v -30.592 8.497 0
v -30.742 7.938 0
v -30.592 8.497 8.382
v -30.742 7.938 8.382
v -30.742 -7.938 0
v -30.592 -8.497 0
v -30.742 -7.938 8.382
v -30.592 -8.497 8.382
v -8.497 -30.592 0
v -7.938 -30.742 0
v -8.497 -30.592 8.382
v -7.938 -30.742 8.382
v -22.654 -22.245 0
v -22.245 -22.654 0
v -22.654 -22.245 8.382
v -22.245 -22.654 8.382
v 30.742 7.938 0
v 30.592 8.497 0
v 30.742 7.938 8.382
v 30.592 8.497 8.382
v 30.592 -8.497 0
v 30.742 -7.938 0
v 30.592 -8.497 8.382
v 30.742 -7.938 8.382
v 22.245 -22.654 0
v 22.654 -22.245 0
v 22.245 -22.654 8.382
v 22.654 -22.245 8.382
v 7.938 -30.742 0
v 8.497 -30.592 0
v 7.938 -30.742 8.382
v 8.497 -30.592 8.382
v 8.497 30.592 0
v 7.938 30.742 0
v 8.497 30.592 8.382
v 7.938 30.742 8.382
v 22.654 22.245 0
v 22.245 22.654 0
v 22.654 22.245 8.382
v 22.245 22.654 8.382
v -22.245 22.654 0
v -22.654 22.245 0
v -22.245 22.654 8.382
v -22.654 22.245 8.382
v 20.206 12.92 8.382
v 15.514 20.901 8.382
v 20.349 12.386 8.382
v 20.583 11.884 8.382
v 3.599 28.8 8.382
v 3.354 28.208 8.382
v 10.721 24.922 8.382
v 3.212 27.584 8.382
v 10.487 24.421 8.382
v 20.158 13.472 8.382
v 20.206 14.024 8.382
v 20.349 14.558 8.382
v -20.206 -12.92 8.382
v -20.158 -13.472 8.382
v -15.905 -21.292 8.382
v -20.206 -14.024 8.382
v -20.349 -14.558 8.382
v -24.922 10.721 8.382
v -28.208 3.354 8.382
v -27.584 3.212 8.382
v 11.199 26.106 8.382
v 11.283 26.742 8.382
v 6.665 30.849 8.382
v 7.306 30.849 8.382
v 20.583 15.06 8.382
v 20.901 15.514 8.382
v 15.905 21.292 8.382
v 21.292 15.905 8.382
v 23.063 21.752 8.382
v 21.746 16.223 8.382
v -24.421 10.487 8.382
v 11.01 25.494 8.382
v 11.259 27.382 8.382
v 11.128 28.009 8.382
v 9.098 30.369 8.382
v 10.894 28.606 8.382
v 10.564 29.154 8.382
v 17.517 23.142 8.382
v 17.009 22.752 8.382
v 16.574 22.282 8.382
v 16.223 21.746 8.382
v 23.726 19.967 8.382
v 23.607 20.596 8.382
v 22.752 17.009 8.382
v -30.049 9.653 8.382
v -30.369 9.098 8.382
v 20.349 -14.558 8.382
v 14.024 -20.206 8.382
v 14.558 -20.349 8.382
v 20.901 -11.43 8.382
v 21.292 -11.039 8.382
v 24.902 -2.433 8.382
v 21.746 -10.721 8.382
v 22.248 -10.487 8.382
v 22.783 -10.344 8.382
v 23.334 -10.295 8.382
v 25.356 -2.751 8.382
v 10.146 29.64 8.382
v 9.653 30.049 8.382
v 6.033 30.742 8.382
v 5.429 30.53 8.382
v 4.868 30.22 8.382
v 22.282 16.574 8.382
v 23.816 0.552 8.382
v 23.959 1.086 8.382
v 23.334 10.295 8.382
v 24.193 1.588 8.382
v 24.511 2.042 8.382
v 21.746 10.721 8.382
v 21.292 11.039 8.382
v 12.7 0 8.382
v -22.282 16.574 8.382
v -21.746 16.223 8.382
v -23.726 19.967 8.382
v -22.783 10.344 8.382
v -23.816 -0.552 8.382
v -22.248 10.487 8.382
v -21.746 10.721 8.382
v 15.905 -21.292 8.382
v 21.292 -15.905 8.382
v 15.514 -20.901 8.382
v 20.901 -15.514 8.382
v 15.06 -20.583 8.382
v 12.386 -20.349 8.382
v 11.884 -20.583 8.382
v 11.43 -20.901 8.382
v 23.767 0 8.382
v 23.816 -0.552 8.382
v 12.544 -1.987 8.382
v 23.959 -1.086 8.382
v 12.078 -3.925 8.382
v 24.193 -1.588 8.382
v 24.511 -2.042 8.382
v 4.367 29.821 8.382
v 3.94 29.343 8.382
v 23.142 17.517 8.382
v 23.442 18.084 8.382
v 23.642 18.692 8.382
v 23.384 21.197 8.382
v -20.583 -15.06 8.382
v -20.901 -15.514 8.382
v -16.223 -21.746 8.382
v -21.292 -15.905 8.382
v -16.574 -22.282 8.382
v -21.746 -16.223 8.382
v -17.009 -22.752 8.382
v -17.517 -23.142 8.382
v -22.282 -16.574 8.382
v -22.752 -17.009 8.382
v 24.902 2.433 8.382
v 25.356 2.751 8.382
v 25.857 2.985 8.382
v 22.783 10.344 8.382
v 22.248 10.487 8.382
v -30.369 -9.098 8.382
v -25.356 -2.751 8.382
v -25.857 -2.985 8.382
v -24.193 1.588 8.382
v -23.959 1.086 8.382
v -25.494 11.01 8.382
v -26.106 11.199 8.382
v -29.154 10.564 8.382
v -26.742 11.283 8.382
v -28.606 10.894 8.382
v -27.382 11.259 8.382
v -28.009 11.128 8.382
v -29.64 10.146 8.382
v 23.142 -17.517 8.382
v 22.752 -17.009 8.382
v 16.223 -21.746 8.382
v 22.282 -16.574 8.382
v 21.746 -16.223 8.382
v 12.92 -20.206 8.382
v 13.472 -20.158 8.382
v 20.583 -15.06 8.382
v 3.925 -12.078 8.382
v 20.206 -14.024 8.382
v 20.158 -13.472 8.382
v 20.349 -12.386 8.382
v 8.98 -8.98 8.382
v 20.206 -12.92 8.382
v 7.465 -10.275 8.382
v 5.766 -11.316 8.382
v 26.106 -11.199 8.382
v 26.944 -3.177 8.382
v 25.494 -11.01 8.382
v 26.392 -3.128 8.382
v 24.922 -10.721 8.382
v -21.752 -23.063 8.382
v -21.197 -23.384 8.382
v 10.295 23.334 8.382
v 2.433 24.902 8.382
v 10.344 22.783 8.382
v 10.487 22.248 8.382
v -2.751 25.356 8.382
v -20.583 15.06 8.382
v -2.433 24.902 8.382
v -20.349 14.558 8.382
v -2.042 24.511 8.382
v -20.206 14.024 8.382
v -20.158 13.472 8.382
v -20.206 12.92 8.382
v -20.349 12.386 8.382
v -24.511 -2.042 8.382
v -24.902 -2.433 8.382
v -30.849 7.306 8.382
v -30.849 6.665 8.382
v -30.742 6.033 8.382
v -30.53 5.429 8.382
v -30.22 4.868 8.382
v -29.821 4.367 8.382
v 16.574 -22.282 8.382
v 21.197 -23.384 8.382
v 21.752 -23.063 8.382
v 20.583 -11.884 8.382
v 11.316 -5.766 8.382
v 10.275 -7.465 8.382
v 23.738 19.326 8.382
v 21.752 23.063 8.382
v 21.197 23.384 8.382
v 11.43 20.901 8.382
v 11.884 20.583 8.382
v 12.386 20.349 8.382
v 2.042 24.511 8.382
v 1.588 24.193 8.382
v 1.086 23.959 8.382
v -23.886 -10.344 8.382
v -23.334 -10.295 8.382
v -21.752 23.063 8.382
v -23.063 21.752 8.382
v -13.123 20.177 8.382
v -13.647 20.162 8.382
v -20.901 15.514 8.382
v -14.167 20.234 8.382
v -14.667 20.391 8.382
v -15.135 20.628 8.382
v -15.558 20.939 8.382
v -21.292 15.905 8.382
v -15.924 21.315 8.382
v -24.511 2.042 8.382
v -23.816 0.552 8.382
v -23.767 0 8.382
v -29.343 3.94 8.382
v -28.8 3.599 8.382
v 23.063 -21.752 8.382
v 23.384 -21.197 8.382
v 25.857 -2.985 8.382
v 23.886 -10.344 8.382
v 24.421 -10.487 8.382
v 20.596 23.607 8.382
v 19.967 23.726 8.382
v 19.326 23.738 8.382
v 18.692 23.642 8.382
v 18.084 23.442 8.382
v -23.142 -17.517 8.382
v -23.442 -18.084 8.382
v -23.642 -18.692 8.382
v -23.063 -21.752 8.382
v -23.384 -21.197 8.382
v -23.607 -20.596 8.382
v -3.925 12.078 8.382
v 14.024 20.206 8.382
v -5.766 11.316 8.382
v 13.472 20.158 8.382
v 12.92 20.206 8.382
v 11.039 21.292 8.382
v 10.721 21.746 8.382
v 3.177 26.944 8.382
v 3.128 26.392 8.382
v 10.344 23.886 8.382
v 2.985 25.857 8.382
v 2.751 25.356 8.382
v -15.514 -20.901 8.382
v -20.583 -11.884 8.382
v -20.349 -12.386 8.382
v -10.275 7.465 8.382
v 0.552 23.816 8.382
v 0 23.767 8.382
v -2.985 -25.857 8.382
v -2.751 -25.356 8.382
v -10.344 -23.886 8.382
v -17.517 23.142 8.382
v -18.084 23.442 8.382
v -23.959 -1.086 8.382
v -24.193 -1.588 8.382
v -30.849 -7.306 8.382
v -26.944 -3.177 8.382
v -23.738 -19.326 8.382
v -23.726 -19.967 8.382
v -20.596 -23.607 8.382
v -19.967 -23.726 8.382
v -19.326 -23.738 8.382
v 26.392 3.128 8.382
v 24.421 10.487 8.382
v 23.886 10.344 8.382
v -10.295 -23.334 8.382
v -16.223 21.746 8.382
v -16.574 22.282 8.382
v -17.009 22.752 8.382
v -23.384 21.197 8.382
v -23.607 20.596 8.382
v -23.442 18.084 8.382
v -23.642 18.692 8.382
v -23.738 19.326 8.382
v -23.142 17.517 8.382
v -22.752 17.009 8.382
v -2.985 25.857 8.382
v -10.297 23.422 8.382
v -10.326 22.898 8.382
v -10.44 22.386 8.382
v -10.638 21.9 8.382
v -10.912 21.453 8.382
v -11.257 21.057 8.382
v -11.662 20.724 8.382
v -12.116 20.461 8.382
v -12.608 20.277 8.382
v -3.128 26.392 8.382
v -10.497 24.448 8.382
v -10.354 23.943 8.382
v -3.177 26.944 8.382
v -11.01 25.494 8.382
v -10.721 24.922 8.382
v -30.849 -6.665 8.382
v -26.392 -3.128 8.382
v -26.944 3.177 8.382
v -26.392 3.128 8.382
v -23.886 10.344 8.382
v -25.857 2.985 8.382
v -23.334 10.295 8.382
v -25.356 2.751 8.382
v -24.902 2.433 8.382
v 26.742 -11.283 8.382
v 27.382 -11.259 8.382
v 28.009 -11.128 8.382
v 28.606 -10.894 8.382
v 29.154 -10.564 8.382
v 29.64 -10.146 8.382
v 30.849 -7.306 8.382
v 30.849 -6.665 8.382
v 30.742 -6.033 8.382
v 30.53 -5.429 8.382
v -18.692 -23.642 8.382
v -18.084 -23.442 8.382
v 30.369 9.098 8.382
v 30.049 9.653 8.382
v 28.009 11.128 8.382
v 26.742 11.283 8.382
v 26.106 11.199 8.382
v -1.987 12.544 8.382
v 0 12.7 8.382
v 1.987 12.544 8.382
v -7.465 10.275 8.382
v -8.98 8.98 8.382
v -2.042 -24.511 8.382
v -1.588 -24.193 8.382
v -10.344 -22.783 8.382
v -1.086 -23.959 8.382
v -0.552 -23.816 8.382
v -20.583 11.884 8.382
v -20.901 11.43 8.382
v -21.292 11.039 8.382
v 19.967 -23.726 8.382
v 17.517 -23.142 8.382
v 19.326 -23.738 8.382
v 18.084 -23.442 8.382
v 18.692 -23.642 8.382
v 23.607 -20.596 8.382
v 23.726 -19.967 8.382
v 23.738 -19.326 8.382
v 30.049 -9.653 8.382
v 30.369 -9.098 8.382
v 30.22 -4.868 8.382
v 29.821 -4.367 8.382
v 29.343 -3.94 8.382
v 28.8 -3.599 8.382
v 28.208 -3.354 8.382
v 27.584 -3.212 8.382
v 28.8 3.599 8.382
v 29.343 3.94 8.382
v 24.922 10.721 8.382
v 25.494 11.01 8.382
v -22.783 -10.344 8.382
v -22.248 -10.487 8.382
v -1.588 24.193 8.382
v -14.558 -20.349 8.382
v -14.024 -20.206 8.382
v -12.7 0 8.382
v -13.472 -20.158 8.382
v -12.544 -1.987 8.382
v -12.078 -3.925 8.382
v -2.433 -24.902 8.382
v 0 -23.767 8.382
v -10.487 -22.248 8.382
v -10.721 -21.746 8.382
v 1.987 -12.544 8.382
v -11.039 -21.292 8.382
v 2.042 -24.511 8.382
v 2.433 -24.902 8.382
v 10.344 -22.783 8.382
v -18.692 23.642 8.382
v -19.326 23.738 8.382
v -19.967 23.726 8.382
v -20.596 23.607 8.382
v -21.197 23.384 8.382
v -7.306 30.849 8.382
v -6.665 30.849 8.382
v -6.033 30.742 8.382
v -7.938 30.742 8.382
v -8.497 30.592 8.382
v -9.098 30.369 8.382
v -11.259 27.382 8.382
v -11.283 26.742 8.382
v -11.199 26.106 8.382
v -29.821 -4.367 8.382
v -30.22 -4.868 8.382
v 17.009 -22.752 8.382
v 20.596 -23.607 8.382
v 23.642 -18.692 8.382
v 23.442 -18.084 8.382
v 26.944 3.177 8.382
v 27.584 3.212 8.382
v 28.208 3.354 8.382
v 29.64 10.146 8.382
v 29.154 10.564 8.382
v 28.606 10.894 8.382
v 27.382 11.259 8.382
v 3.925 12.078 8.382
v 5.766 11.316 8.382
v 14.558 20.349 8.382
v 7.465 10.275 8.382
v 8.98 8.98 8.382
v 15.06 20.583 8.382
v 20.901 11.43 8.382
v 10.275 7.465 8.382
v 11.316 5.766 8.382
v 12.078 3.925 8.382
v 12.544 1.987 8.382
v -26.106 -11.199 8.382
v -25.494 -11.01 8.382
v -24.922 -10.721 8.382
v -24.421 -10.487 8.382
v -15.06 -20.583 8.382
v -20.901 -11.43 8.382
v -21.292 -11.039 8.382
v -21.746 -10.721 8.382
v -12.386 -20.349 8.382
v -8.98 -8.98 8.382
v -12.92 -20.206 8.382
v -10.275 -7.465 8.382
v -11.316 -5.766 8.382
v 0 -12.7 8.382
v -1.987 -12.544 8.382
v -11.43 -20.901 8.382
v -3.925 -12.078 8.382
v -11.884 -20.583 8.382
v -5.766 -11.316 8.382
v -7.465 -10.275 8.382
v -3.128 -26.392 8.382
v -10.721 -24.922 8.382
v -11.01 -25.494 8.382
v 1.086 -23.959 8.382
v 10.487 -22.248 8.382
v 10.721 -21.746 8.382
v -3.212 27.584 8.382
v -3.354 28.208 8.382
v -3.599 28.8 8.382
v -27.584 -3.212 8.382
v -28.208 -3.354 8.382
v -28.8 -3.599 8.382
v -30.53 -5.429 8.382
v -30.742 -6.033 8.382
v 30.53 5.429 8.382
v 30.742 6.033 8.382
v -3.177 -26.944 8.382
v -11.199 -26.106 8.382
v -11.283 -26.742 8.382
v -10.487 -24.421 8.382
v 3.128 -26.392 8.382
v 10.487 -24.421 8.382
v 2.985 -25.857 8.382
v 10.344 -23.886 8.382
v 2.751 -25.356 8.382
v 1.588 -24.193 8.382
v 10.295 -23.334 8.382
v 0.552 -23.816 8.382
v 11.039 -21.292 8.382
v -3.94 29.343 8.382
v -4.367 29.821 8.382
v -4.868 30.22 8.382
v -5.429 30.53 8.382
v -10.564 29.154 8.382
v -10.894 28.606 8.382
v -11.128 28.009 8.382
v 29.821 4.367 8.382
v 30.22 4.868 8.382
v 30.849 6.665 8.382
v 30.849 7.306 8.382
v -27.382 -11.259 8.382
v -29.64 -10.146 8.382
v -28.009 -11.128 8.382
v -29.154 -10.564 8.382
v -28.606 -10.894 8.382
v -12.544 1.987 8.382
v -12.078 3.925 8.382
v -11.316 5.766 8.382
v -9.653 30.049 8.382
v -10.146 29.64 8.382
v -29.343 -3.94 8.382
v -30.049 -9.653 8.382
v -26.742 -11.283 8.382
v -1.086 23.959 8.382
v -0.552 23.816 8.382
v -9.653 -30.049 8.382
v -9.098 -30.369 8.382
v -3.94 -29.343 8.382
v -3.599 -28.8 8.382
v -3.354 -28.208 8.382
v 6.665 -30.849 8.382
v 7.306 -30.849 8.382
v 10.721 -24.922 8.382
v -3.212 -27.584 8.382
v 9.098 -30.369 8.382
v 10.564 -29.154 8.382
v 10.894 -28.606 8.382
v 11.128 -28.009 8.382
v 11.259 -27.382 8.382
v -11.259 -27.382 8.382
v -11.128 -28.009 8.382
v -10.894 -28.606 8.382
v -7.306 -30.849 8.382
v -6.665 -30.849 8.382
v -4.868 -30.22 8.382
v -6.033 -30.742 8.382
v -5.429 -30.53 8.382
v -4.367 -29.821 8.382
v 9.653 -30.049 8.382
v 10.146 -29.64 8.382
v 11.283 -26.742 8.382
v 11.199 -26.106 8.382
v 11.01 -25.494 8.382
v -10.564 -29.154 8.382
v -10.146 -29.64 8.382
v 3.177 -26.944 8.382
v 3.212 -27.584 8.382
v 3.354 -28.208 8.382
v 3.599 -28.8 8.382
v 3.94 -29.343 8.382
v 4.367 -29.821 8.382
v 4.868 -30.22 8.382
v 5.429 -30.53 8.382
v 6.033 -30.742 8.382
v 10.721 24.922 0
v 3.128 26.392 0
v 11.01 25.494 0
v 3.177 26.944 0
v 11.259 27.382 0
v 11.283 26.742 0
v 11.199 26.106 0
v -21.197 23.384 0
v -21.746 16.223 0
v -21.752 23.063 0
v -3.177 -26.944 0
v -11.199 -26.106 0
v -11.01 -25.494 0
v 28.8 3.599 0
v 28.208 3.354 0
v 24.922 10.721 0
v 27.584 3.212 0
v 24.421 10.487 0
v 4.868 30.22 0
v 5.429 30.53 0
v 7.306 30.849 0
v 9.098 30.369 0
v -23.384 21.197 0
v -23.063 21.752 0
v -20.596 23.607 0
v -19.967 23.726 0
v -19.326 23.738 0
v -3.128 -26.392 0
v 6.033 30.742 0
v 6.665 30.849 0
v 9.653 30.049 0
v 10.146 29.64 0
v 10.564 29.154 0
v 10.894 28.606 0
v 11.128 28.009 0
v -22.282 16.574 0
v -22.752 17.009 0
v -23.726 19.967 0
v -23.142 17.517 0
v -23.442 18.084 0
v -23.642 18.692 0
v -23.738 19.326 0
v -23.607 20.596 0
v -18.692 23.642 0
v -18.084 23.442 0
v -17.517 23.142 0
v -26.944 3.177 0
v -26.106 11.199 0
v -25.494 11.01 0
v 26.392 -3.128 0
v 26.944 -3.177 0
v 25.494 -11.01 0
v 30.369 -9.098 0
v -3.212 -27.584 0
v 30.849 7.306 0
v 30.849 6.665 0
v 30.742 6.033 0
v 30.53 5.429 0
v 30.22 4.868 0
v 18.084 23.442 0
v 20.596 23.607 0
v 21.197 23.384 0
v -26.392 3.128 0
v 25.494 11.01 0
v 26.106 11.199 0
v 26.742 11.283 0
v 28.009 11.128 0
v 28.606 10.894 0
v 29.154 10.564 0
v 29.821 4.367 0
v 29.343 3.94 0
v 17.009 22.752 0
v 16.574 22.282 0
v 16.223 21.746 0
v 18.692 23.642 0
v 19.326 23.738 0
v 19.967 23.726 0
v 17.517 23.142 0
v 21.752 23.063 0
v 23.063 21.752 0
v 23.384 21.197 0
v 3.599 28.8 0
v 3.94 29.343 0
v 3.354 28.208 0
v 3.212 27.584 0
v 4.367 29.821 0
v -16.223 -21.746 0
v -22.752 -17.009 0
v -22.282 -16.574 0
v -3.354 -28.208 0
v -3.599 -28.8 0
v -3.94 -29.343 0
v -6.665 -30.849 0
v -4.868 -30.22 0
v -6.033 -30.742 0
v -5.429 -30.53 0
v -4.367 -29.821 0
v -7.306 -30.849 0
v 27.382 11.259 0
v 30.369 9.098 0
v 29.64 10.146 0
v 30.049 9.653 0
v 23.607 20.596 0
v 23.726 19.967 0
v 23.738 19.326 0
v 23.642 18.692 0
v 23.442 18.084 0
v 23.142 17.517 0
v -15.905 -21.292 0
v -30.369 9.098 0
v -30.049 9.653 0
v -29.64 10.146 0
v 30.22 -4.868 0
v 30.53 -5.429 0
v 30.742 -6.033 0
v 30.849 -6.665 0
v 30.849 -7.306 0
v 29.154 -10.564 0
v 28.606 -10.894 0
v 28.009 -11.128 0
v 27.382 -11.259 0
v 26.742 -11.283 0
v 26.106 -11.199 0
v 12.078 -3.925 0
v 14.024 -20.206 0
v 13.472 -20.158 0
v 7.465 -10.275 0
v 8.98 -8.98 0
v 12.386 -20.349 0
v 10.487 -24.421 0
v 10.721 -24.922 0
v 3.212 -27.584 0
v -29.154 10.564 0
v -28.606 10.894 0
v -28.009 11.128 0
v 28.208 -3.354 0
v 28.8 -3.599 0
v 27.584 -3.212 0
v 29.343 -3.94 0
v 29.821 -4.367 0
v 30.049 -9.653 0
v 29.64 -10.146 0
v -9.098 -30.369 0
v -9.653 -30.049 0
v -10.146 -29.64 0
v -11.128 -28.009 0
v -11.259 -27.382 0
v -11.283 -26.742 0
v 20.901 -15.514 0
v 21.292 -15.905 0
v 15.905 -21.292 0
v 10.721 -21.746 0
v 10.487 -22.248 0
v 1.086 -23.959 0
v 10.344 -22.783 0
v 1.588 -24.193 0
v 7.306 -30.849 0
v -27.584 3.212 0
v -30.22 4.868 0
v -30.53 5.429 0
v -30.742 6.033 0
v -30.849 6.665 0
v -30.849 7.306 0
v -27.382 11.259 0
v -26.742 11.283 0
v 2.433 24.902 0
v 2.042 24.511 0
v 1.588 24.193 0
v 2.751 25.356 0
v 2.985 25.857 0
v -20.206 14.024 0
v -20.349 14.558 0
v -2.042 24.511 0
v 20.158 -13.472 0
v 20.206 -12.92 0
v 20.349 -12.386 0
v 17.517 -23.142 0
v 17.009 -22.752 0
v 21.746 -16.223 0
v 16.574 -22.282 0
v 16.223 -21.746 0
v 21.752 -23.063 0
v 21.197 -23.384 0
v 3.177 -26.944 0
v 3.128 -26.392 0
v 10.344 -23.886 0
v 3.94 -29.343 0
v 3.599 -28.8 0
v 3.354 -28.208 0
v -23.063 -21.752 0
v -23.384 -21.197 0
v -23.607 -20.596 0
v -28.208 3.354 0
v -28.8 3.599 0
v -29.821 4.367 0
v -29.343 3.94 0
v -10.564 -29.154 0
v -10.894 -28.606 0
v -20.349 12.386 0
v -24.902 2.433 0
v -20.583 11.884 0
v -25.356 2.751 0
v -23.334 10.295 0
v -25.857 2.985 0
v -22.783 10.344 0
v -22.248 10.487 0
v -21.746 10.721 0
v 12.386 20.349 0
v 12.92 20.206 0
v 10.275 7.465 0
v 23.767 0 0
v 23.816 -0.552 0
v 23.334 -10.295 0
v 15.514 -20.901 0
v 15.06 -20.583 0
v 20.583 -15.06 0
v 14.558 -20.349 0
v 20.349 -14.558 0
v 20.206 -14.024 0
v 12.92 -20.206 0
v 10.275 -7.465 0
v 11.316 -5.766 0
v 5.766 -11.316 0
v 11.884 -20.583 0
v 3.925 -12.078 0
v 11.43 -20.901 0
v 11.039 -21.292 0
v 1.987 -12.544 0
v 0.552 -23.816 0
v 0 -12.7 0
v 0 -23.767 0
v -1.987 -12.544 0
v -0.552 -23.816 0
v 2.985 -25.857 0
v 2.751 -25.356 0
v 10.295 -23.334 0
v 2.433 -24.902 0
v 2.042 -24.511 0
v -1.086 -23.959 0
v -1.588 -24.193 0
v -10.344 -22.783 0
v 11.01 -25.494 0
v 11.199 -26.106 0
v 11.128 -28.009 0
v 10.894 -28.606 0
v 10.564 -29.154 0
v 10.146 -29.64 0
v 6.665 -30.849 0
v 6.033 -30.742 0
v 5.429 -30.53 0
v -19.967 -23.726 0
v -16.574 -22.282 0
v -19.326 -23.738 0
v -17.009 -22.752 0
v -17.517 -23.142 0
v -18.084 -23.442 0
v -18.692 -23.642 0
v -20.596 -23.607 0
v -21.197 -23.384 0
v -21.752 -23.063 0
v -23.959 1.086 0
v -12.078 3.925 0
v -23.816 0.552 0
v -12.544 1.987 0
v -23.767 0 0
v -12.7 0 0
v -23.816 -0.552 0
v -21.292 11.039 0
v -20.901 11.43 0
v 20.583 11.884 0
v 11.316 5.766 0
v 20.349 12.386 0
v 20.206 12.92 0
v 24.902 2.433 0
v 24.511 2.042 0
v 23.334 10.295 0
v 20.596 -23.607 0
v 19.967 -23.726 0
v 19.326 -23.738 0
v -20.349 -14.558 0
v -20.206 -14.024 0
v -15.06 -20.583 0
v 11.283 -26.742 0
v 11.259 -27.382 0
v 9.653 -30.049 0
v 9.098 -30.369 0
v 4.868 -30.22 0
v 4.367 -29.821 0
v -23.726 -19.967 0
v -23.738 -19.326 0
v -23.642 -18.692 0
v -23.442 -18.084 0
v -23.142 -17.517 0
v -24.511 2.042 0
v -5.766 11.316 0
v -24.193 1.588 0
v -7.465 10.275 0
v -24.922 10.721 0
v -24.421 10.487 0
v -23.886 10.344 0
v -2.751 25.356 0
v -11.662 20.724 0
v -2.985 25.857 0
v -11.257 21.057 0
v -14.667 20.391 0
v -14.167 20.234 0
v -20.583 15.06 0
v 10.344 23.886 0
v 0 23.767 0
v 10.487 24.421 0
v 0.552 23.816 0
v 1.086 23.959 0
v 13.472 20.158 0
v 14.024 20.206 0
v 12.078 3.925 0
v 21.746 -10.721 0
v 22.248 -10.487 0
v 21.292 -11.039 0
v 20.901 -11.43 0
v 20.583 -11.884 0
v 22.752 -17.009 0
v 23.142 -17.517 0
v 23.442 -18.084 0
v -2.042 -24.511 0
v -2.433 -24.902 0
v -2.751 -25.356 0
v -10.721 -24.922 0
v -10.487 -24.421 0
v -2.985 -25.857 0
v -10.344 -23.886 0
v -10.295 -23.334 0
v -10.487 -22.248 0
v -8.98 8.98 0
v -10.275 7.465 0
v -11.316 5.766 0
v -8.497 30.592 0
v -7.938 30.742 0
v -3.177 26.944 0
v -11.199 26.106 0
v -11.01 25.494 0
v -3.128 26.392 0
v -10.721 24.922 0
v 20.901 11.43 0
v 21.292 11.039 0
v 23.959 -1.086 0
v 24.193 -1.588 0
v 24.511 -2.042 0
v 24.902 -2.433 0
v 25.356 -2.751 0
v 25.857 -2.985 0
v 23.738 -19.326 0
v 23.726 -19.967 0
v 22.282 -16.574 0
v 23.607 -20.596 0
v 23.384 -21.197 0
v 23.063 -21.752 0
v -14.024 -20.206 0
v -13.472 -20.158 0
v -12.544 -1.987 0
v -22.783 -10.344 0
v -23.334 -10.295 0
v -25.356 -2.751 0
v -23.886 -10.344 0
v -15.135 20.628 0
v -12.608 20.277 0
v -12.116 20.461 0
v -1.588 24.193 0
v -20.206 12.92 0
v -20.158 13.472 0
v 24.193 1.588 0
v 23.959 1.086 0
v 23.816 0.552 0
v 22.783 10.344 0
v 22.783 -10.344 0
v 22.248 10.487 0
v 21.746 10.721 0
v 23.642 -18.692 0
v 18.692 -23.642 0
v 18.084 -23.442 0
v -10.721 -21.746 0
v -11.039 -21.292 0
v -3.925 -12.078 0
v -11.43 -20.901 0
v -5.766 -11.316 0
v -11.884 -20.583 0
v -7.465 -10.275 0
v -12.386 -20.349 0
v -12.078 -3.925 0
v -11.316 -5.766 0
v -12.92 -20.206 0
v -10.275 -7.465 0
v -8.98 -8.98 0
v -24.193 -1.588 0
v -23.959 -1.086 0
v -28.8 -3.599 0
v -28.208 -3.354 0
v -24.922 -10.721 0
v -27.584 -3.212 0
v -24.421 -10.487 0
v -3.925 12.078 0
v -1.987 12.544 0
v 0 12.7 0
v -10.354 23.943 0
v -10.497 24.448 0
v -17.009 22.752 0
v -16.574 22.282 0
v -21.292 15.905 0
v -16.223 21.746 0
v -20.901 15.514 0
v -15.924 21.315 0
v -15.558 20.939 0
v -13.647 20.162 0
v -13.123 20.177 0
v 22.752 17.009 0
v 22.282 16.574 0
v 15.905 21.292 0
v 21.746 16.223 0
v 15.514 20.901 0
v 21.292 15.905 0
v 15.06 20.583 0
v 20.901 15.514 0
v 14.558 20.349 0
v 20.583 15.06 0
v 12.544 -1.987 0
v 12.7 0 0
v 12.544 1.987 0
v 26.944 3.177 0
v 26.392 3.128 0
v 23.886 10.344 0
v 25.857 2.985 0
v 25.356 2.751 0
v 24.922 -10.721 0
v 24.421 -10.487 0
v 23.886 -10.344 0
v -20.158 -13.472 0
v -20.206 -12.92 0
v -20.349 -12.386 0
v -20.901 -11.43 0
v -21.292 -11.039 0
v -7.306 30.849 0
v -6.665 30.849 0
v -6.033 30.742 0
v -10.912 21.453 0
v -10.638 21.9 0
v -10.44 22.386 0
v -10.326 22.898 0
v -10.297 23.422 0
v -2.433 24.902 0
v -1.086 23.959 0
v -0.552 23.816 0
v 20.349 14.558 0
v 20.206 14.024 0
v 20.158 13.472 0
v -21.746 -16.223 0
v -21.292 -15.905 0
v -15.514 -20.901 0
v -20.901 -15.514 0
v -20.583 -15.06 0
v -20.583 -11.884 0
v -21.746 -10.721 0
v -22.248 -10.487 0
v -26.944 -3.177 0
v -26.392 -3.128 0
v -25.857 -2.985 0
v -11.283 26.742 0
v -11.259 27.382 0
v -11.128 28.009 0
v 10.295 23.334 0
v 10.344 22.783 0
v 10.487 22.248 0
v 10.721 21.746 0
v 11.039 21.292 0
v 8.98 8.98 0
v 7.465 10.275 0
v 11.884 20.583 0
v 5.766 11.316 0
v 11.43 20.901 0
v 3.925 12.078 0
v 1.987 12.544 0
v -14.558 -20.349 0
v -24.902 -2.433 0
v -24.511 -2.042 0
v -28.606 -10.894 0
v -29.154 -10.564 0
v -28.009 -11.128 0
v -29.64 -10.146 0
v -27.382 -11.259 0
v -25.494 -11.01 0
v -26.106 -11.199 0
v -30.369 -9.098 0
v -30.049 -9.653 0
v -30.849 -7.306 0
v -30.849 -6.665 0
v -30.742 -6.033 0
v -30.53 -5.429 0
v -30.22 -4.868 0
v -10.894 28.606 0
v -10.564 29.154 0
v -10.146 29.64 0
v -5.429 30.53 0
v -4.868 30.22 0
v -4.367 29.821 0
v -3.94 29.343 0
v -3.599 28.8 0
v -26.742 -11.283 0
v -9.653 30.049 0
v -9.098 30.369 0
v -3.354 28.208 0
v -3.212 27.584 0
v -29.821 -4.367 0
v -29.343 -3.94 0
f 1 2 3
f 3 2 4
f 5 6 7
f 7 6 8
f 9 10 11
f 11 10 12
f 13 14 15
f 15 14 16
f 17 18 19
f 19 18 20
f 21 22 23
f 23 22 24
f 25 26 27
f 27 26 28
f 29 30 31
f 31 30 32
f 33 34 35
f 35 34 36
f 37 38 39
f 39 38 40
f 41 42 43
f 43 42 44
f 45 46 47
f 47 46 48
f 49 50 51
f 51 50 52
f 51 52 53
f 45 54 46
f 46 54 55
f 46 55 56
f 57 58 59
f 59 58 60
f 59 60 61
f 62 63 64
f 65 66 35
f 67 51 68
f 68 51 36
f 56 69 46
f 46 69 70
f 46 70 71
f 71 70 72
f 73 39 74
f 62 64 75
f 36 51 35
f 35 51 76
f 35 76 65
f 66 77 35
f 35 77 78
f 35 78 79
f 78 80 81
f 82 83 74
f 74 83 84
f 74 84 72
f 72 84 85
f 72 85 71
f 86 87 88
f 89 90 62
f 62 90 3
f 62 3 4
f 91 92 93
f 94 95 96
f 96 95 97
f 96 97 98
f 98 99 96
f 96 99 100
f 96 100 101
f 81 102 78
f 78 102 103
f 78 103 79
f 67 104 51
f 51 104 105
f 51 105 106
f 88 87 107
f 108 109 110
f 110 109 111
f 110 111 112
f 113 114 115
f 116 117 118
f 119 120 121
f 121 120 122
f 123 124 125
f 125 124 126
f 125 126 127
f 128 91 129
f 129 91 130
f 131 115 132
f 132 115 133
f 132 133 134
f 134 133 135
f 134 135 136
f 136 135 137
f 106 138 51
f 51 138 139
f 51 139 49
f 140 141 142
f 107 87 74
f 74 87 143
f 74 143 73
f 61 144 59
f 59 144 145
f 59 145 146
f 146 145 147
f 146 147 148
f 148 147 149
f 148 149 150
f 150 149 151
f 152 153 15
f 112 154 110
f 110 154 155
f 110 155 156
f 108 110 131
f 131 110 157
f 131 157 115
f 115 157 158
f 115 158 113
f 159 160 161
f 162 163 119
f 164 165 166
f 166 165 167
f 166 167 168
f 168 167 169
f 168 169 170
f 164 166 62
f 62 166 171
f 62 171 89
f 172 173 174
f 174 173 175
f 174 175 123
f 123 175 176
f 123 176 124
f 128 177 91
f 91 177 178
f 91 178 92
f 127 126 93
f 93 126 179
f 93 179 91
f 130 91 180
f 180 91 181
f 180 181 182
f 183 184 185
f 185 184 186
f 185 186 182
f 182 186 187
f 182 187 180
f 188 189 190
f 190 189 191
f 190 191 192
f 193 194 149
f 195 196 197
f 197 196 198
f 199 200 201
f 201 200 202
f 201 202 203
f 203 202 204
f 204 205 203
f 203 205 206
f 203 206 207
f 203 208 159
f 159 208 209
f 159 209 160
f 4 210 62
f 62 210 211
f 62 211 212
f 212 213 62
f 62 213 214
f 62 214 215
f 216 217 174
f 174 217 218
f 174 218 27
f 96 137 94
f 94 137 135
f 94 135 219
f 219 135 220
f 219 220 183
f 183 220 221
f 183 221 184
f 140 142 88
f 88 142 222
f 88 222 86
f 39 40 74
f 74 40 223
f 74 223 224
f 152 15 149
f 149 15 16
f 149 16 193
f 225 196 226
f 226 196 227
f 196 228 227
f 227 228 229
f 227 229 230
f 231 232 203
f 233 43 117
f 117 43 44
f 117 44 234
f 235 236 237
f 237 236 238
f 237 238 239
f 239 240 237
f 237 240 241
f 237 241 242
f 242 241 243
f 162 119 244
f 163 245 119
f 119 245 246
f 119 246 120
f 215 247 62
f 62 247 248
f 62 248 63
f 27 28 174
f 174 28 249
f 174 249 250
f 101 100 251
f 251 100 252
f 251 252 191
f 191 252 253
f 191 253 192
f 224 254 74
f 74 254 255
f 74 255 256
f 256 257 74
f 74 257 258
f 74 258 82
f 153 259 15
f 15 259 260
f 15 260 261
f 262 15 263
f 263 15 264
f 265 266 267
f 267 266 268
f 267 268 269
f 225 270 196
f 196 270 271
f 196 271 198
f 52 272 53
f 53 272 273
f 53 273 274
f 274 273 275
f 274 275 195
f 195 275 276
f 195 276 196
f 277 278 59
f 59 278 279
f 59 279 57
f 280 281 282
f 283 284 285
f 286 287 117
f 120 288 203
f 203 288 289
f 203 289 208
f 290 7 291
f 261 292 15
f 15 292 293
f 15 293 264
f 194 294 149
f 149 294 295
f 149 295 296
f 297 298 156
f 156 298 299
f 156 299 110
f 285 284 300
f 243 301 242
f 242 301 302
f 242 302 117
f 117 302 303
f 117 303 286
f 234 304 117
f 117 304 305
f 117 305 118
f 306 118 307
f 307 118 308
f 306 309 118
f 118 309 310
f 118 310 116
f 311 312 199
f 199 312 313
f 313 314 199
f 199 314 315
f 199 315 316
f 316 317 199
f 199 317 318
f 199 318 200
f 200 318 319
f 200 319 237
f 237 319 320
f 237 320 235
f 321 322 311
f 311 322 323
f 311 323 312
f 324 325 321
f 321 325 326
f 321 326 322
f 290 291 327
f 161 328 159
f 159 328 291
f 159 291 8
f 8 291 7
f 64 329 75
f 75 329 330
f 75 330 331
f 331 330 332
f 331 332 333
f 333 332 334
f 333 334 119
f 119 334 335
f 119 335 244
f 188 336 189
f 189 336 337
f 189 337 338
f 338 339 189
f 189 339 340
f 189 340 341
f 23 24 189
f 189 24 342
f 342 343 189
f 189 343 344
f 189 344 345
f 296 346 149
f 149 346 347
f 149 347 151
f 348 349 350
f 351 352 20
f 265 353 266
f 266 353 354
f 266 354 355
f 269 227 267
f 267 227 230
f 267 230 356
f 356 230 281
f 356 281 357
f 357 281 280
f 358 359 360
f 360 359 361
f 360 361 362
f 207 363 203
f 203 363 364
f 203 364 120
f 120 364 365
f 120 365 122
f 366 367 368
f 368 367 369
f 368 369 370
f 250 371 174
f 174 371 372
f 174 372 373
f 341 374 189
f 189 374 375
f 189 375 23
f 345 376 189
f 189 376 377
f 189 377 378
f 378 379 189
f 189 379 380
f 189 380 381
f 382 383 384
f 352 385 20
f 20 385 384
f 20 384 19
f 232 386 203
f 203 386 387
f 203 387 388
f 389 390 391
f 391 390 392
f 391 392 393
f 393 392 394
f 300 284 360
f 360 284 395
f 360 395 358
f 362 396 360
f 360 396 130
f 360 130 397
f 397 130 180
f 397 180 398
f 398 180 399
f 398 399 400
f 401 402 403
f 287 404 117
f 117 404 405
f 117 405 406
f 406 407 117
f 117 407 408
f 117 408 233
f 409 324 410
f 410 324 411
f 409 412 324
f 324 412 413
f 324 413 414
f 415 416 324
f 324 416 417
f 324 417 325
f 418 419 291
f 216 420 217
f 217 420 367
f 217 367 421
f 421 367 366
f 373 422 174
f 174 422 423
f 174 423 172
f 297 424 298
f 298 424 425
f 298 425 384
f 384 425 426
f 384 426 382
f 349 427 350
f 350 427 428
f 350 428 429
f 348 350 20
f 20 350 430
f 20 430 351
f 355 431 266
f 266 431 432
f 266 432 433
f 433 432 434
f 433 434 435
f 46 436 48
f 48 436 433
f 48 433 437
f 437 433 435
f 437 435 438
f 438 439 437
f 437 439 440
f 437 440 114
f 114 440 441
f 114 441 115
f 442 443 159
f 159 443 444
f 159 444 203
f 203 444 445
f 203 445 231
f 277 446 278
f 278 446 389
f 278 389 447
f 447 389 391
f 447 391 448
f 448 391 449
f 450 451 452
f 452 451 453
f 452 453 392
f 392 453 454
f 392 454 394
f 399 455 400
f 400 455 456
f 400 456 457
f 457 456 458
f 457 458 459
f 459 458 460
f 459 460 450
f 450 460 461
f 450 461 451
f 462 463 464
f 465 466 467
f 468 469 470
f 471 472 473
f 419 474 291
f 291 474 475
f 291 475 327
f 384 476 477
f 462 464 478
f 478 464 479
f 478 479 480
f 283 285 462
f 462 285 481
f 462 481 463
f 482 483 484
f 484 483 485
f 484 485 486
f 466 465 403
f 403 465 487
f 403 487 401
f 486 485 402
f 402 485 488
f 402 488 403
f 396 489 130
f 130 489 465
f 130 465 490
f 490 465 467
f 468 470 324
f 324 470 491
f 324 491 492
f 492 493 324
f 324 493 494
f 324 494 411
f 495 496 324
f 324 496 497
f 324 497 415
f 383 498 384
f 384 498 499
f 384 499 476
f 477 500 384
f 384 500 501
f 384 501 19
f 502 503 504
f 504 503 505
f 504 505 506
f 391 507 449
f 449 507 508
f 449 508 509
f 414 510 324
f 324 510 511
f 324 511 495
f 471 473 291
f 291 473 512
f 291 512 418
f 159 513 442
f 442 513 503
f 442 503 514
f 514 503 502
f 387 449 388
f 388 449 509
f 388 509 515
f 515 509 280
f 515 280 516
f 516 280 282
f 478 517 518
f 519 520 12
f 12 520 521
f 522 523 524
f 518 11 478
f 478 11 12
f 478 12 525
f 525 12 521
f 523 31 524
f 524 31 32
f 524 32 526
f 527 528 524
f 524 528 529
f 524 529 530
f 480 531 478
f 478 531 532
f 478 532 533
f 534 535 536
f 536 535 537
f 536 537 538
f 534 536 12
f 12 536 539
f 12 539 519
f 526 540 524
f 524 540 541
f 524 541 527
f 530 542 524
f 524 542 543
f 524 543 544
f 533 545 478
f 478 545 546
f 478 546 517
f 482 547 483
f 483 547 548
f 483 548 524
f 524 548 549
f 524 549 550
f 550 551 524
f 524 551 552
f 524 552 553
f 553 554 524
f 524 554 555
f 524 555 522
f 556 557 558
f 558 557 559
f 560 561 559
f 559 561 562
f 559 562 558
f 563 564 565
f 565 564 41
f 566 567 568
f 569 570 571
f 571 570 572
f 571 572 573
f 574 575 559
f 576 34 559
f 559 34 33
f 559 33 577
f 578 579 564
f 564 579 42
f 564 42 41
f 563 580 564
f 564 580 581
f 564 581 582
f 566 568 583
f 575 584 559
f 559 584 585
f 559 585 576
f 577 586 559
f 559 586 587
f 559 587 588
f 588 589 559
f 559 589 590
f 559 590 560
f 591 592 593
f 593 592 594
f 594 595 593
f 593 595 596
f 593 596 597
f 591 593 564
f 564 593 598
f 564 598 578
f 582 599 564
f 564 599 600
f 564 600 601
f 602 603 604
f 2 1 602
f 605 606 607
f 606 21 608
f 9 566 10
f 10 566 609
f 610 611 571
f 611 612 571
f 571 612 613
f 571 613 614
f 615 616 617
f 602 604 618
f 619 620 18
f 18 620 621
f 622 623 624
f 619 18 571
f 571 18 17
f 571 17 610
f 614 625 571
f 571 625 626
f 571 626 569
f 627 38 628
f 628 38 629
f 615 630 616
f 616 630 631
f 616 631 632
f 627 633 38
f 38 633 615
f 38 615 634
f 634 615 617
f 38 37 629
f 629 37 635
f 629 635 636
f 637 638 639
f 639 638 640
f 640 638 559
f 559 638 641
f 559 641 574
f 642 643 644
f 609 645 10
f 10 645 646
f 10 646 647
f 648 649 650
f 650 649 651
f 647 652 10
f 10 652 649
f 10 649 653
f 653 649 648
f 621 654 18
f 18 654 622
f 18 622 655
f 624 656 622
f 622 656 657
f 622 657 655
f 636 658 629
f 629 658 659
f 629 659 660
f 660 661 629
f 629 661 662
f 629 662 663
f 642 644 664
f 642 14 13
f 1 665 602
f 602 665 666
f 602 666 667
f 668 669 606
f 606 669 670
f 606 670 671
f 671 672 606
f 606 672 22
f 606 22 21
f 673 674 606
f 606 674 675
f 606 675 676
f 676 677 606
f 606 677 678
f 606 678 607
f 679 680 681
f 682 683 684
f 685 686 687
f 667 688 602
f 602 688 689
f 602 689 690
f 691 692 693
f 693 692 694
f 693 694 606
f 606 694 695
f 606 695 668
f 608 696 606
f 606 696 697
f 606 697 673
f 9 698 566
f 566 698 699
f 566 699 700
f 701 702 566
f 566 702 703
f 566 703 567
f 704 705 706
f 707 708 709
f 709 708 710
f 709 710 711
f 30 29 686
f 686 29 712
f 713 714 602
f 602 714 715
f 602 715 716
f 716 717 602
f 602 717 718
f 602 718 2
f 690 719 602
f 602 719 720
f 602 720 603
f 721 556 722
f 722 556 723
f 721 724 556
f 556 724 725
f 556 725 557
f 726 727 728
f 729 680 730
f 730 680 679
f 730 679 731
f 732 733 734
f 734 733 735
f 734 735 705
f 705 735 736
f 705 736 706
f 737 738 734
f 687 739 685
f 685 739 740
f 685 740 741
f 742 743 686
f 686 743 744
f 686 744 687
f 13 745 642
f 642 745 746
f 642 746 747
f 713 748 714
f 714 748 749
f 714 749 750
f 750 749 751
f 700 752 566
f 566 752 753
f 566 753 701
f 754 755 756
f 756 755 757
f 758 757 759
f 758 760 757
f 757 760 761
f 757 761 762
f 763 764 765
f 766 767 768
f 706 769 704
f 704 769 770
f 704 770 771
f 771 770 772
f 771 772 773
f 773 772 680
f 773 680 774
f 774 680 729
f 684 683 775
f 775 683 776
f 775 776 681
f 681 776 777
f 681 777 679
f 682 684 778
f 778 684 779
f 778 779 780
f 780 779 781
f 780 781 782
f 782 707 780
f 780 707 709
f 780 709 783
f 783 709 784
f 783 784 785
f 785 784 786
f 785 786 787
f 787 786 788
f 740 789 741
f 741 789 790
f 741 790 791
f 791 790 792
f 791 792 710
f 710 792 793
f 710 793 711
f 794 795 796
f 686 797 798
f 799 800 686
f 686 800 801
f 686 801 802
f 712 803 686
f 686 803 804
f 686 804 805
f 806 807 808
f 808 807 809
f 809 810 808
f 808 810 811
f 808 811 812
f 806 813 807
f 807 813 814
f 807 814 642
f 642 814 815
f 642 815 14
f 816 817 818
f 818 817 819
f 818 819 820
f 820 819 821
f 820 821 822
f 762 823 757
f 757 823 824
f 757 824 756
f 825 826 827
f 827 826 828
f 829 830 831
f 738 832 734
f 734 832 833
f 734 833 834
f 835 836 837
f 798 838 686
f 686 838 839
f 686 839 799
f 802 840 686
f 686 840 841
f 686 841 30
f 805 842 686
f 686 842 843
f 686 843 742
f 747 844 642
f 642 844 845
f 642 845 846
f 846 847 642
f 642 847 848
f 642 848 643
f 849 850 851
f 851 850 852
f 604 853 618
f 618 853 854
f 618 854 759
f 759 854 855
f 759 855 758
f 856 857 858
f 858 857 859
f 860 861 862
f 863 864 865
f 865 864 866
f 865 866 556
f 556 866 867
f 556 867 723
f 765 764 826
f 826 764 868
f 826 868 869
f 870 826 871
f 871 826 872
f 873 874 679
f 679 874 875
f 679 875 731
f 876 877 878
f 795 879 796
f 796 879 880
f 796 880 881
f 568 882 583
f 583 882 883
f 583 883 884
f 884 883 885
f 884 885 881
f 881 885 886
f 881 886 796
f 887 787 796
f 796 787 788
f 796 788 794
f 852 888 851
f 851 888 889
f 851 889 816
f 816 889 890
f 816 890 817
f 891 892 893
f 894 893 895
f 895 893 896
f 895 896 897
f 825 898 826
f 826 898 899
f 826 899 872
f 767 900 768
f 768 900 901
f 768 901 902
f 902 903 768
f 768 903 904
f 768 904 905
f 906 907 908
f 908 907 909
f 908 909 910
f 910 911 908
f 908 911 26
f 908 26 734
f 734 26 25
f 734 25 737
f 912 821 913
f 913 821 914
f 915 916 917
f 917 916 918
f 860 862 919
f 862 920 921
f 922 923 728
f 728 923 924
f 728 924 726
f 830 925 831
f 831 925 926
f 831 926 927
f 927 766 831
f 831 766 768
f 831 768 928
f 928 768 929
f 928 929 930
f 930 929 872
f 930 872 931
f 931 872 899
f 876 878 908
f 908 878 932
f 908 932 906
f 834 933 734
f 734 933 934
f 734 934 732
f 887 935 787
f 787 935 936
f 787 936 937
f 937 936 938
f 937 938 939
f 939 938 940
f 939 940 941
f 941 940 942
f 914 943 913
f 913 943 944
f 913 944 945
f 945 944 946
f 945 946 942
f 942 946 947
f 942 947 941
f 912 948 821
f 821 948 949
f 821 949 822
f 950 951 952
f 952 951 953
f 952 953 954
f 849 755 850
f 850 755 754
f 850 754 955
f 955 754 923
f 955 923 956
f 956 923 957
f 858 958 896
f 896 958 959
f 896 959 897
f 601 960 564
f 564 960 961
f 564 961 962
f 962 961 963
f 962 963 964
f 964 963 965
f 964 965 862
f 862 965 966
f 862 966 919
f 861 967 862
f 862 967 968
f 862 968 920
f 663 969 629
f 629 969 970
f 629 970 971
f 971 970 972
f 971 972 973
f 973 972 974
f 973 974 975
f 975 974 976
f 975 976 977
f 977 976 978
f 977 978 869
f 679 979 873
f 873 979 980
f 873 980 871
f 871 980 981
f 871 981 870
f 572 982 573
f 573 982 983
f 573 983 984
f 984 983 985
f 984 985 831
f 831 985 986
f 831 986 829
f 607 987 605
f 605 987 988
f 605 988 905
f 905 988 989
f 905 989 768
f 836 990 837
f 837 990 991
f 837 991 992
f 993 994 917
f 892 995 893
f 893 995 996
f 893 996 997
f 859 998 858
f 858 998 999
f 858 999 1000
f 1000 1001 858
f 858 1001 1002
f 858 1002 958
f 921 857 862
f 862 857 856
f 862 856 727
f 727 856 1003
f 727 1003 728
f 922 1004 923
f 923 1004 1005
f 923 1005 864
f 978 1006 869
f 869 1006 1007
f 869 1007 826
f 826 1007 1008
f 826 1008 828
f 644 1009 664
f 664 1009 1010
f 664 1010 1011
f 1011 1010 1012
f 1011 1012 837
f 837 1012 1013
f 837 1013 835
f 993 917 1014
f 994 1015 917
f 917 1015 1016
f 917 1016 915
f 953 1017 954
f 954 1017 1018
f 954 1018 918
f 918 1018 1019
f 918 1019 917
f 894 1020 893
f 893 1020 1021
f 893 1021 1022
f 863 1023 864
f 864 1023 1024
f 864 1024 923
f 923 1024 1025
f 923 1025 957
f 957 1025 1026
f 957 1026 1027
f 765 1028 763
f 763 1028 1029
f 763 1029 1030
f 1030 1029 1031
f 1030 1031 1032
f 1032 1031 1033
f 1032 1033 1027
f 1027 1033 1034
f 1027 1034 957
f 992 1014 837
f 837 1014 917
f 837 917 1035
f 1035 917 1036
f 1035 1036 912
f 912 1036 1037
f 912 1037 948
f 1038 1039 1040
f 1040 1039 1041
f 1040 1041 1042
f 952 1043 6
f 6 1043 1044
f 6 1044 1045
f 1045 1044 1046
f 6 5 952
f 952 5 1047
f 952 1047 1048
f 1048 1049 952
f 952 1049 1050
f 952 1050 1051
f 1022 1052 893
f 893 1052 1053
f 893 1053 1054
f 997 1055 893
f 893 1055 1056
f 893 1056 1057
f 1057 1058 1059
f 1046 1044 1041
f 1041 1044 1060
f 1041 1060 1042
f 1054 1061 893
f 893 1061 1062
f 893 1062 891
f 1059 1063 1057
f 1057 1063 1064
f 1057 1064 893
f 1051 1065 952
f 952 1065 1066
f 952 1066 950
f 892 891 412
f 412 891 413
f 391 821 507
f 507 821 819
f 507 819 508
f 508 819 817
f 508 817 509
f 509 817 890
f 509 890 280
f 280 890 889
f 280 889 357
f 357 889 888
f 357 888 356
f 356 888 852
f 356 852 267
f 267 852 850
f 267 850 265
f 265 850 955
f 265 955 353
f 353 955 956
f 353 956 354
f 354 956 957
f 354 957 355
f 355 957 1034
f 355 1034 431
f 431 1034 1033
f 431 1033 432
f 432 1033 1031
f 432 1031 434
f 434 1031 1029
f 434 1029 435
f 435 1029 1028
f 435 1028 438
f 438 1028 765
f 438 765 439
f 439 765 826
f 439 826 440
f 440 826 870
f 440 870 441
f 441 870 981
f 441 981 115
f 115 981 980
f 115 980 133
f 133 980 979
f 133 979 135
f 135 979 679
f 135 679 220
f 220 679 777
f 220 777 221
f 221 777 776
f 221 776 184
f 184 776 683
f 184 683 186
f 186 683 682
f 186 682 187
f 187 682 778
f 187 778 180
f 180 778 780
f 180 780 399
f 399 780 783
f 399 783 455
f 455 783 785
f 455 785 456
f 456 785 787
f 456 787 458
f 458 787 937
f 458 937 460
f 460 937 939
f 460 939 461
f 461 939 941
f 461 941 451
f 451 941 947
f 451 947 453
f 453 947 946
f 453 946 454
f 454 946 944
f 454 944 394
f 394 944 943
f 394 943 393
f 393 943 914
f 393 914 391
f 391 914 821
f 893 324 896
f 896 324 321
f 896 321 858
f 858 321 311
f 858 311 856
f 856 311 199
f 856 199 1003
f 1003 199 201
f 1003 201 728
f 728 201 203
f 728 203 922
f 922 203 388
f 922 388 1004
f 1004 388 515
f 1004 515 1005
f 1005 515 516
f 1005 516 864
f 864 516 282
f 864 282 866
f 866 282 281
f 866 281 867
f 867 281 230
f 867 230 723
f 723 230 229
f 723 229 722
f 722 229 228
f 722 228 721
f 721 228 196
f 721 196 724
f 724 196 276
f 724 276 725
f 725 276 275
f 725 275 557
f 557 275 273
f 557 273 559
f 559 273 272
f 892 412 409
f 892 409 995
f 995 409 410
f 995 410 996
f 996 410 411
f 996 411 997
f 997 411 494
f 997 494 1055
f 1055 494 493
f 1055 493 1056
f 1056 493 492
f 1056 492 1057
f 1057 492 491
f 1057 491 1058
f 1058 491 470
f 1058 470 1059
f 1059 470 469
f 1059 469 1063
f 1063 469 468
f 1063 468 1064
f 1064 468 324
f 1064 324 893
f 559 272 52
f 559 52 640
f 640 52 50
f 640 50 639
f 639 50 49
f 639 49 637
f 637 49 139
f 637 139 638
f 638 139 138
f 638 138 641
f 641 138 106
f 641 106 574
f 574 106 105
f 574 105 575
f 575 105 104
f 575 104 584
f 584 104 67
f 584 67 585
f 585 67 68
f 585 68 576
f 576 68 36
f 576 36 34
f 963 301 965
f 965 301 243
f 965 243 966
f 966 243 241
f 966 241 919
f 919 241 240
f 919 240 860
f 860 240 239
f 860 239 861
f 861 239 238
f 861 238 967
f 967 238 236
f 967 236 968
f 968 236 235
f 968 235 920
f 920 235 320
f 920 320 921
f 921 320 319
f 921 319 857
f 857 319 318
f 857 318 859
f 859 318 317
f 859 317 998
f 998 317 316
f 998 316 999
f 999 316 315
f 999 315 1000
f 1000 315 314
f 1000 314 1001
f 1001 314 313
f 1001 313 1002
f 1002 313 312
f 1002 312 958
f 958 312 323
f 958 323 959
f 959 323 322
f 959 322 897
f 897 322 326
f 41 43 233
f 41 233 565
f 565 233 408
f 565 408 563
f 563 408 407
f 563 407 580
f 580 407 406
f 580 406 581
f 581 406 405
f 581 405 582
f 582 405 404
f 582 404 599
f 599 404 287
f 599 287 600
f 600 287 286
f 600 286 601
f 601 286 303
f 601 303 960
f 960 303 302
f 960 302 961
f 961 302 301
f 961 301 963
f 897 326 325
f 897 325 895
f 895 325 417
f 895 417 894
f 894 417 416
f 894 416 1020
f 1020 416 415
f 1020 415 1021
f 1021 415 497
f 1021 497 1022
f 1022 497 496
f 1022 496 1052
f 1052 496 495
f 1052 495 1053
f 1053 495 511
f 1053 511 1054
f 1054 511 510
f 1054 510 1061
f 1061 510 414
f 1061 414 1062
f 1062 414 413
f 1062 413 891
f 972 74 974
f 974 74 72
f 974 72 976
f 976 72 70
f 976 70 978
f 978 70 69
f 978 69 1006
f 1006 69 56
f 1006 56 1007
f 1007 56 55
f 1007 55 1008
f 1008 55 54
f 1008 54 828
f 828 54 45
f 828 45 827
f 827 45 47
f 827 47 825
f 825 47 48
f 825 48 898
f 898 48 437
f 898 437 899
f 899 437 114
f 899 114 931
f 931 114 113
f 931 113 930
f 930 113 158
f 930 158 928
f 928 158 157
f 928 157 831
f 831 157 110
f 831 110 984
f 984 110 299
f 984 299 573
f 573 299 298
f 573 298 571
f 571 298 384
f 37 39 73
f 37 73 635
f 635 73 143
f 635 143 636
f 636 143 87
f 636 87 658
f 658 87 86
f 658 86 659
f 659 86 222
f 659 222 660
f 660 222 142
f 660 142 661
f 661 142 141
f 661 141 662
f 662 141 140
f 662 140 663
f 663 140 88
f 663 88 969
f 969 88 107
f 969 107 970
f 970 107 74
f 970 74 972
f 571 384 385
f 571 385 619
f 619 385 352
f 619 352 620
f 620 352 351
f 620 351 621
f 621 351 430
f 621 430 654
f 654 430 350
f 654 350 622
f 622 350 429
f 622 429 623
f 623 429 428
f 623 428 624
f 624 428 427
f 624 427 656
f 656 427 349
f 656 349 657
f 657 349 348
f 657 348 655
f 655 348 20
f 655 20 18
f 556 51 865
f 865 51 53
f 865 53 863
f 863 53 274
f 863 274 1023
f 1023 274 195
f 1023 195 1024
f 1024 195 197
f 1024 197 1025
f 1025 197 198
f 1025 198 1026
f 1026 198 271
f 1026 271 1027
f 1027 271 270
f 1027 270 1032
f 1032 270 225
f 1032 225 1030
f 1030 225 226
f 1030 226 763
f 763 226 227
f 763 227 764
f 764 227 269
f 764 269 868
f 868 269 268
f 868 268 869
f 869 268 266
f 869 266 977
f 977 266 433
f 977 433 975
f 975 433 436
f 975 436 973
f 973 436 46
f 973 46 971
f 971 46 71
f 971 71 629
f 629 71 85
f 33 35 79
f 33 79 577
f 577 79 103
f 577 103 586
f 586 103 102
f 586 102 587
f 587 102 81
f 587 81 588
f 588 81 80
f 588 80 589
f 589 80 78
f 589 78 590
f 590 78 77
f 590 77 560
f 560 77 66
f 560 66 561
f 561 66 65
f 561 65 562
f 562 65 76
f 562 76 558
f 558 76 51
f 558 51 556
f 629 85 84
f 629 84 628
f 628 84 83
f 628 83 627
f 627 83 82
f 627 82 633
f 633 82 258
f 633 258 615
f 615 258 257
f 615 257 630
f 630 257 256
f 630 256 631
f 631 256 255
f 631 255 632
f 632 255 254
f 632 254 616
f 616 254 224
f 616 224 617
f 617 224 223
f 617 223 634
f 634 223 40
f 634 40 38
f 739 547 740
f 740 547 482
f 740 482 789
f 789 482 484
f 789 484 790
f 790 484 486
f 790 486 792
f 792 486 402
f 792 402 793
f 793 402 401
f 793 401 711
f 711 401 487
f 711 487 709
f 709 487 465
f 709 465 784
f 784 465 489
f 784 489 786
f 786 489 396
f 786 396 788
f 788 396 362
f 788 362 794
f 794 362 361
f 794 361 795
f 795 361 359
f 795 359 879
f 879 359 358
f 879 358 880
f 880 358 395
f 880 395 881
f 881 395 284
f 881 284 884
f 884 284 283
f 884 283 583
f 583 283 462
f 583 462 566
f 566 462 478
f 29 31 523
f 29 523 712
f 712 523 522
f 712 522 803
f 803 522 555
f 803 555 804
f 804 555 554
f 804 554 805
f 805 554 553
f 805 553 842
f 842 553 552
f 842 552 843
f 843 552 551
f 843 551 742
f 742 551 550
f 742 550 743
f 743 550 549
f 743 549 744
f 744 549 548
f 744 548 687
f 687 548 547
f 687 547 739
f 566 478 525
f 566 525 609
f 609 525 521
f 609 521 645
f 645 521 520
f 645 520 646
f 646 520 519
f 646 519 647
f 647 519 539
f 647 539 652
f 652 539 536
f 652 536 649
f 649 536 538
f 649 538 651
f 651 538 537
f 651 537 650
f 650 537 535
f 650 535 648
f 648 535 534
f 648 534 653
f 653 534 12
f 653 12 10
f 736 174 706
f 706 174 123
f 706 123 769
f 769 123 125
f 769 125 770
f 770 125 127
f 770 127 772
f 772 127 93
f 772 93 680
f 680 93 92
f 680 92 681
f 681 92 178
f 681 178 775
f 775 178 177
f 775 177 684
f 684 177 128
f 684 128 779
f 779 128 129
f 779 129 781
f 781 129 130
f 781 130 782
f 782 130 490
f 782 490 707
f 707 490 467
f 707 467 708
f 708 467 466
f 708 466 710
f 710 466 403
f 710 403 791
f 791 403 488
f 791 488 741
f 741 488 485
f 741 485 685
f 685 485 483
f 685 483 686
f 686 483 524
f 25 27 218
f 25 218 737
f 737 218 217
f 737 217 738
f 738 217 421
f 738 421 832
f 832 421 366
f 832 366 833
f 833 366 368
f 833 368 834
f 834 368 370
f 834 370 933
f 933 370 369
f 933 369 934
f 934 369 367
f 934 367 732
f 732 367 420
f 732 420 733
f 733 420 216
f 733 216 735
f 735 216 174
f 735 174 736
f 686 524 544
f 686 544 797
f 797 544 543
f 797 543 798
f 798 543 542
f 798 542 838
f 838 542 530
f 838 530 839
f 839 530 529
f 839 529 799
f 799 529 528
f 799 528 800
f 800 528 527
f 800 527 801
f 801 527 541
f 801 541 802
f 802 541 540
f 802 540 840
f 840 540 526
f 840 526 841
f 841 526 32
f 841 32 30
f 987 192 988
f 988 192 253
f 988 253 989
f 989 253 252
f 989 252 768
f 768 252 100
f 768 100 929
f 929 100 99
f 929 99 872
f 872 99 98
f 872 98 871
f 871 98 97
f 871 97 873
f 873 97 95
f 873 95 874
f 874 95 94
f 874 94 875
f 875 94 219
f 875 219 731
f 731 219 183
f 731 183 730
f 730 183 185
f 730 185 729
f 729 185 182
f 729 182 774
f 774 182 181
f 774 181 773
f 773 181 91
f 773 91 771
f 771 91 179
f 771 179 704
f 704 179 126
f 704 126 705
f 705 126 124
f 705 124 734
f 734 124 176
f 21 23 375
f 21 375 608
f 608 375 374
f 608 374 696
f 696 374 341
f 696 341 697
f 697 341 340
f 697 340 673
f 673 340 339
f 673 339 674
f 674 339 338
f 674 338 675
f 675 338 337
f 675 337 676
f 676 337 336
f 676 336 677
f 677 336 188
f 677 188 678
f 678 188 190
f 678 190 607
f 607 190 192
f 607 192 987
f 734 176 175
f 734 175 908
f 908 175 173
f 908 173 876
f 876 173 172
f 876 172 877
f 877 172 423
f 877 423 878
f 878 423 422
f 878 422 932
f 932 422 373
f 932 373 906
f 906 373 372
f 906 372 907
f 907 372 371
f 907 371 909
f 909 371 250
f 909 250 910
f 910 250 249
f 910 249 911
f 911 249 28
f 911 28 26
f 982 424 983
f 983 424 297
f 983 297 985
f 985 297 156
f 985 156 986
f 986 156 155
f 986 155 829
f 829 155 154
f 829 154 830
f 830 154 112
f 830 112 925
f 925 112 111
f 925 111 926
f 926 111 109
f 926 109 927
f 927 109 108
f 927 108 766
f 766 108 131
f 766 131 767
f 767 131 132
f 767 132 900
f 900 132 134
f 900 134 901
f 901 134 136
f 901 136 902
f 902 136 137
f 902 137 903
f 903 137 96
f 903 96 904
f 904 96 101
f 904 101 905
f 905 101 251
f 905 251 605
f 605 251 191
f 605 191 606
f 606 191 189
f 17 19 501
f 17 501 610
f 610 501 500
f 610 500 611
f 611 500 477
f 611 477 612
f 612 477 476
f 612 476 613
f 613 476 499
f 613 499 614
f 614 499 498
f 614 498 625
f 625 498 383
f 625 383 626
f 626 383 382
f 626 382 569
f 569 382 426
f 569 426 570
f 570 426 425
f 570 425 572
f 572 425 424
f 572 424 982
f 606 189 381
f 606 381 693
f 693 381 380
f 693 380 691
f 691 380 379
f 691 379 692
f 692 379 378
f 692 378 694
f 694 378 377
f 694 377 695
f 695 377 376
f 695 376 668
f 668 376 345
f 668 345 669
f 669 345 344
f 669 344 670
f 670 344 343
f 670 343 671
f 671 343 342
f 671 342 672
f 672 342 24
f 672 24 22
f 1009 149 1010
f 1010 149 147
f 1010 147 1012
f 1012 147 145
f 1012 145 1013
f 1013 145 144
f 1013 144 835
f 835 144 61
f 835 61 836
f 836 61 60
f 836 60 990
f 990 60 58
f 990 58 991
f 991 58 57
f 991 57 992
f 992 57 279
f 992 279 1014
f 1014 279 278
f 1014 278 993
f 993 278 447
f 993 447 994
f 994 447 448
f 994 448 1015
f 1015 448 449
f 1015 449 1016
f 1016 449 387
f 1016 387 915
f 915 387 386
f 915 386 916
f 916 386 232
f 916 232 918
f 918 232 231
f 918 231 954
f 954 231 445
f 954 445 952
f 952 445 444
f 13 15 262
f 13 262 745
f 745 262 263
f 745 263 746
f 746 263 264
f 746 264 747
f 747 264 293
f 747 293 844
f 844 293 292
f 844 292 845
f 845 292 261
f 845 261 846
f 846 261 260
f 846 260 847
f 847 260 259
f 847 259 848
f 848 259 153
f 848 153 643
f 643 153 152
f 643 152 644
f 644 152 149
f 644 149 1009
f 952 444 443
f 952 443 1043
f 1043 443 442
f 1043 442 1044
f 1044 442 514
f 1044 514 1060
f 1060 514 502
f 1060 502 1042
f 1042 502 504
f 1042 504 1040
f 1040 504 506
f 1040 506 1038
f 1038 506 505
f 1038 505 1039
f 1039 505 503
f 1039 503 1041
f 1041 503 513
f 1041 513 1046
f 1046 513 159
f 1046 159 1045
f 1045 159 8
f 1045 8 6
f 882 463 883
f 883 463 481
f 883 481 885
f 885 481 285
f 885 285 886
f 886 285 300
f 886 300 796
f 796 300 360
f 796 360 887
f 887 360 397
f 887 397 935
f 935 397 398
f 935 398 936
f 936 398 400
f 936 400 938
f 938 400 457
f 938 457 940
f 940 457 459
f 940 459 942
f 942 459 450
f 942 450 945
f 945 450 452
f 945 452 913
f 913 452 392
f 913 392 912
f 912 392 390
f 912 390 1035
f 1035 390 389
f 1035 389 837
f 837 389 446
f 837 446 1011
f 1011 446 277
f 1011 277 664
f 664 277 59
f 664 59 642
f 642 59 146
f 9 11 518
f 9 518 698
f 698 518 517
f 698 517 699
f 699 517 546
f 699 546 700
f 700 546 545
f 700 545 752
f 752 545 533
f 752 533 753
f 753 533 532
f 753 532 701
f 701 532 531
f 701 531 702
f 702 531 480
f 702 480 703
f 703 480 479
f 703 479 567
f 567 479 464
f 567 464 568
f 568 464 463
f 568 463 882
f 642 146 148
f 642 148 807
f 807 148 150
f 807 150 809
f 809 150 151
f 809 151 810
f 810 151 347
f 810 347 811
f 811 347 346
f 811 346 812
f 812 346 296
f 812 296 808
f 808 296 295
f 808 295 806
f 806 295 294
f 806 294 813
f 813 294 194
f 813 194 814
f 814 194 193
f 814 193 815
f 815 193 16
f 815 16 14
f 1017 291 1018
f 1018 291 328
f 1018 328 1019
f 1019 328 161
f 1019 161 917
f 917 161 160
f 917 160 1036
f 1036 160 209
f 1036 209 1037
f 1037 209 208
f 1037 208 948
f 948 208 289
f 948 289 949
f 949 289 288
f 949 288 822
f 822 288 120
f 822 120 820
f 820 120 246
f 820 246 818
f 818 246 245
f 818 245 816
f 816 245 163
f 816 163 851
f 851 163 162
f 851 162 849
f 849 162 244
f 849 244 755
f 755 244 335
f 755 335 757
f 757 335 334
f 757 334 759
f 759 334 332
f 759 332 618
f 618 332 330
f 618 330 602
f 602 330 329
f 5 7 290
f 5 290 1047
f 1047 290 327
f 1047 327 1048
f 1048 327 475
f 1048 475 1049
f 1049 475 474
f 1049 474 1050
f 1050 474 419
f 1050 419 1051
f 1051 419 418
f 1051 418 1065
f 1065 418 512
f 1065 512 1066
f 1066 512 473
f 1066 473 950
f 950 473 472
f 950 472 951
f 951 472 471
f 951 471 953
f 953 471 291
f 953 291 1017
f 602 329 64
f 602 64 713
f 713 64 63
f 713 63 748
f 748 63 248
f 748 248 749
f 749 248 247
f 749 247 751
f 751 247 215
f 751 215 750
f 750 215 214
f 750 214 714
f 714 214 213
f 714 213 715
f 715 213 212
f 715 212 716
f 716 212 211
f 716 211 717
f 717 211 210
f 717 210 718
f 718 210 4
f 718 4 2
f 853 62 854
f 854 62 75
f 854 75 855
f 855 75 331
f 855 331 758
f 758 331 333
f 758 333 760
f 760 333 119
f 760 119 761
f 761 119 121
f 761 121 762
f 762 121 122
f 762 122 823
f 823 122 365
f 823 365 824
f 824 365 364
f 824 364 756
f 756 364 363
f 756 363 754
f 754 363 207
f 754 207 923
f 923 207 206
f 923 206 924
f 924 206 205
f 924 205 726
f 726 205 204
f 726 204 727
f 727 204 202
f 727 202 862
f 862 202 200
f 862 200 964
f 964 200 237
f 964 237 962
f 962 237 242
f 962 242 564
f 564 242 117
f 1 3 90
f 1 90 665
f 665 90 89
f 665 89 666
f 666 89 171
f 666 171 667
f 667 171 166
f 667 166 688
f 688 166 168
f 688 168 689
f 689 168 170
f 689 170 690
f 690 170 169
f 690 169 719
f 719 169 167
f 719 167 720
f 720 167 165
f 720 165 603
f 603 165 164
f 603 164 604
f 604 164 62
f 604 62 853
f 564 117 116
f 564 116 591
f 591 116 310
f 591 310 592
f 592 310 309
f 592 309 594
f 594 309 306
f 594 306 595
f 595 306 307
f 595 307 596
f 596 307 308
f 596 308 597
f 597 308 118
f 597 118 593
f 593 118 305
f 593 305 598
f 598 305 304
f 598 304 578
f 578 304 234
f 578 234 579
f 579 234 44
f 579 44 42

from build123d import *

# Parameters (mm, degrees)
SKETCH1_R           = 31.75
SKETCH1_R_2         = 12.7
BOSS_EXTRUDE1_DEPTH = 8.382
CUT_EXTRUDE1_DEPTH  = 11.43
CIRPATTERN1_COUNT   = 12


with BuildPart() as part:
    # Sketch1 → Boss-Extrude1 (new body)
    with BuildSketch(Plane.XY):
        Circle(SKETCH1_R)
        Circle(SKETCH1_R_2, mode=Mode.SUBTRACT)
    extrude(amount=BOSS_EXTRUDE1_DEPTH)

    # Sketch2 → Cut-Extrude1 (cut)
    with BuildSketch(Plane.XY.offset(8.382)):
        with BuildLine():
            Line((-7.9375, 30.741805311), (-7.9375, 33.926877276))
            Line((-7.9375, 33.926877276), (7.9375, 33.926877276))
            Line((7.9375, 33.926877276), (7.9375, 30.741805311))
            ThreePointArc((7.9375, 30.741805311), (4.60906835, 30.031219266), (3.176555189, 26.943939587))
            ThreePointArc((3.176555189, 26.943939587), (0, 23.767384397), (-3.176555189, 26.943939587))
            ThreePointArc((-3.176555189, 26.943939587), (-4.60906835, 30.031219266), (-7.9375, 30.741805311))
        make_face()
    cut_extrude1 = extrude(amount=-CUT_EXTRUDE1_DEPTH, mode=Mode.SUBTRACT)

    # CirPattern1: Cut-Extrude1 ×12 about axis
    cirpattern1_axis = Axis((0, 0, 0), (0, 0, 1))
    for i in range(1, CIRPATTERN1_COUNT):
        add(cut_extrude1.rotate(cirpattern1_axis, i * 360 / CIRPATTERN1_COUNT), mode=Mode.SUBTRACT)


solid = part.part
